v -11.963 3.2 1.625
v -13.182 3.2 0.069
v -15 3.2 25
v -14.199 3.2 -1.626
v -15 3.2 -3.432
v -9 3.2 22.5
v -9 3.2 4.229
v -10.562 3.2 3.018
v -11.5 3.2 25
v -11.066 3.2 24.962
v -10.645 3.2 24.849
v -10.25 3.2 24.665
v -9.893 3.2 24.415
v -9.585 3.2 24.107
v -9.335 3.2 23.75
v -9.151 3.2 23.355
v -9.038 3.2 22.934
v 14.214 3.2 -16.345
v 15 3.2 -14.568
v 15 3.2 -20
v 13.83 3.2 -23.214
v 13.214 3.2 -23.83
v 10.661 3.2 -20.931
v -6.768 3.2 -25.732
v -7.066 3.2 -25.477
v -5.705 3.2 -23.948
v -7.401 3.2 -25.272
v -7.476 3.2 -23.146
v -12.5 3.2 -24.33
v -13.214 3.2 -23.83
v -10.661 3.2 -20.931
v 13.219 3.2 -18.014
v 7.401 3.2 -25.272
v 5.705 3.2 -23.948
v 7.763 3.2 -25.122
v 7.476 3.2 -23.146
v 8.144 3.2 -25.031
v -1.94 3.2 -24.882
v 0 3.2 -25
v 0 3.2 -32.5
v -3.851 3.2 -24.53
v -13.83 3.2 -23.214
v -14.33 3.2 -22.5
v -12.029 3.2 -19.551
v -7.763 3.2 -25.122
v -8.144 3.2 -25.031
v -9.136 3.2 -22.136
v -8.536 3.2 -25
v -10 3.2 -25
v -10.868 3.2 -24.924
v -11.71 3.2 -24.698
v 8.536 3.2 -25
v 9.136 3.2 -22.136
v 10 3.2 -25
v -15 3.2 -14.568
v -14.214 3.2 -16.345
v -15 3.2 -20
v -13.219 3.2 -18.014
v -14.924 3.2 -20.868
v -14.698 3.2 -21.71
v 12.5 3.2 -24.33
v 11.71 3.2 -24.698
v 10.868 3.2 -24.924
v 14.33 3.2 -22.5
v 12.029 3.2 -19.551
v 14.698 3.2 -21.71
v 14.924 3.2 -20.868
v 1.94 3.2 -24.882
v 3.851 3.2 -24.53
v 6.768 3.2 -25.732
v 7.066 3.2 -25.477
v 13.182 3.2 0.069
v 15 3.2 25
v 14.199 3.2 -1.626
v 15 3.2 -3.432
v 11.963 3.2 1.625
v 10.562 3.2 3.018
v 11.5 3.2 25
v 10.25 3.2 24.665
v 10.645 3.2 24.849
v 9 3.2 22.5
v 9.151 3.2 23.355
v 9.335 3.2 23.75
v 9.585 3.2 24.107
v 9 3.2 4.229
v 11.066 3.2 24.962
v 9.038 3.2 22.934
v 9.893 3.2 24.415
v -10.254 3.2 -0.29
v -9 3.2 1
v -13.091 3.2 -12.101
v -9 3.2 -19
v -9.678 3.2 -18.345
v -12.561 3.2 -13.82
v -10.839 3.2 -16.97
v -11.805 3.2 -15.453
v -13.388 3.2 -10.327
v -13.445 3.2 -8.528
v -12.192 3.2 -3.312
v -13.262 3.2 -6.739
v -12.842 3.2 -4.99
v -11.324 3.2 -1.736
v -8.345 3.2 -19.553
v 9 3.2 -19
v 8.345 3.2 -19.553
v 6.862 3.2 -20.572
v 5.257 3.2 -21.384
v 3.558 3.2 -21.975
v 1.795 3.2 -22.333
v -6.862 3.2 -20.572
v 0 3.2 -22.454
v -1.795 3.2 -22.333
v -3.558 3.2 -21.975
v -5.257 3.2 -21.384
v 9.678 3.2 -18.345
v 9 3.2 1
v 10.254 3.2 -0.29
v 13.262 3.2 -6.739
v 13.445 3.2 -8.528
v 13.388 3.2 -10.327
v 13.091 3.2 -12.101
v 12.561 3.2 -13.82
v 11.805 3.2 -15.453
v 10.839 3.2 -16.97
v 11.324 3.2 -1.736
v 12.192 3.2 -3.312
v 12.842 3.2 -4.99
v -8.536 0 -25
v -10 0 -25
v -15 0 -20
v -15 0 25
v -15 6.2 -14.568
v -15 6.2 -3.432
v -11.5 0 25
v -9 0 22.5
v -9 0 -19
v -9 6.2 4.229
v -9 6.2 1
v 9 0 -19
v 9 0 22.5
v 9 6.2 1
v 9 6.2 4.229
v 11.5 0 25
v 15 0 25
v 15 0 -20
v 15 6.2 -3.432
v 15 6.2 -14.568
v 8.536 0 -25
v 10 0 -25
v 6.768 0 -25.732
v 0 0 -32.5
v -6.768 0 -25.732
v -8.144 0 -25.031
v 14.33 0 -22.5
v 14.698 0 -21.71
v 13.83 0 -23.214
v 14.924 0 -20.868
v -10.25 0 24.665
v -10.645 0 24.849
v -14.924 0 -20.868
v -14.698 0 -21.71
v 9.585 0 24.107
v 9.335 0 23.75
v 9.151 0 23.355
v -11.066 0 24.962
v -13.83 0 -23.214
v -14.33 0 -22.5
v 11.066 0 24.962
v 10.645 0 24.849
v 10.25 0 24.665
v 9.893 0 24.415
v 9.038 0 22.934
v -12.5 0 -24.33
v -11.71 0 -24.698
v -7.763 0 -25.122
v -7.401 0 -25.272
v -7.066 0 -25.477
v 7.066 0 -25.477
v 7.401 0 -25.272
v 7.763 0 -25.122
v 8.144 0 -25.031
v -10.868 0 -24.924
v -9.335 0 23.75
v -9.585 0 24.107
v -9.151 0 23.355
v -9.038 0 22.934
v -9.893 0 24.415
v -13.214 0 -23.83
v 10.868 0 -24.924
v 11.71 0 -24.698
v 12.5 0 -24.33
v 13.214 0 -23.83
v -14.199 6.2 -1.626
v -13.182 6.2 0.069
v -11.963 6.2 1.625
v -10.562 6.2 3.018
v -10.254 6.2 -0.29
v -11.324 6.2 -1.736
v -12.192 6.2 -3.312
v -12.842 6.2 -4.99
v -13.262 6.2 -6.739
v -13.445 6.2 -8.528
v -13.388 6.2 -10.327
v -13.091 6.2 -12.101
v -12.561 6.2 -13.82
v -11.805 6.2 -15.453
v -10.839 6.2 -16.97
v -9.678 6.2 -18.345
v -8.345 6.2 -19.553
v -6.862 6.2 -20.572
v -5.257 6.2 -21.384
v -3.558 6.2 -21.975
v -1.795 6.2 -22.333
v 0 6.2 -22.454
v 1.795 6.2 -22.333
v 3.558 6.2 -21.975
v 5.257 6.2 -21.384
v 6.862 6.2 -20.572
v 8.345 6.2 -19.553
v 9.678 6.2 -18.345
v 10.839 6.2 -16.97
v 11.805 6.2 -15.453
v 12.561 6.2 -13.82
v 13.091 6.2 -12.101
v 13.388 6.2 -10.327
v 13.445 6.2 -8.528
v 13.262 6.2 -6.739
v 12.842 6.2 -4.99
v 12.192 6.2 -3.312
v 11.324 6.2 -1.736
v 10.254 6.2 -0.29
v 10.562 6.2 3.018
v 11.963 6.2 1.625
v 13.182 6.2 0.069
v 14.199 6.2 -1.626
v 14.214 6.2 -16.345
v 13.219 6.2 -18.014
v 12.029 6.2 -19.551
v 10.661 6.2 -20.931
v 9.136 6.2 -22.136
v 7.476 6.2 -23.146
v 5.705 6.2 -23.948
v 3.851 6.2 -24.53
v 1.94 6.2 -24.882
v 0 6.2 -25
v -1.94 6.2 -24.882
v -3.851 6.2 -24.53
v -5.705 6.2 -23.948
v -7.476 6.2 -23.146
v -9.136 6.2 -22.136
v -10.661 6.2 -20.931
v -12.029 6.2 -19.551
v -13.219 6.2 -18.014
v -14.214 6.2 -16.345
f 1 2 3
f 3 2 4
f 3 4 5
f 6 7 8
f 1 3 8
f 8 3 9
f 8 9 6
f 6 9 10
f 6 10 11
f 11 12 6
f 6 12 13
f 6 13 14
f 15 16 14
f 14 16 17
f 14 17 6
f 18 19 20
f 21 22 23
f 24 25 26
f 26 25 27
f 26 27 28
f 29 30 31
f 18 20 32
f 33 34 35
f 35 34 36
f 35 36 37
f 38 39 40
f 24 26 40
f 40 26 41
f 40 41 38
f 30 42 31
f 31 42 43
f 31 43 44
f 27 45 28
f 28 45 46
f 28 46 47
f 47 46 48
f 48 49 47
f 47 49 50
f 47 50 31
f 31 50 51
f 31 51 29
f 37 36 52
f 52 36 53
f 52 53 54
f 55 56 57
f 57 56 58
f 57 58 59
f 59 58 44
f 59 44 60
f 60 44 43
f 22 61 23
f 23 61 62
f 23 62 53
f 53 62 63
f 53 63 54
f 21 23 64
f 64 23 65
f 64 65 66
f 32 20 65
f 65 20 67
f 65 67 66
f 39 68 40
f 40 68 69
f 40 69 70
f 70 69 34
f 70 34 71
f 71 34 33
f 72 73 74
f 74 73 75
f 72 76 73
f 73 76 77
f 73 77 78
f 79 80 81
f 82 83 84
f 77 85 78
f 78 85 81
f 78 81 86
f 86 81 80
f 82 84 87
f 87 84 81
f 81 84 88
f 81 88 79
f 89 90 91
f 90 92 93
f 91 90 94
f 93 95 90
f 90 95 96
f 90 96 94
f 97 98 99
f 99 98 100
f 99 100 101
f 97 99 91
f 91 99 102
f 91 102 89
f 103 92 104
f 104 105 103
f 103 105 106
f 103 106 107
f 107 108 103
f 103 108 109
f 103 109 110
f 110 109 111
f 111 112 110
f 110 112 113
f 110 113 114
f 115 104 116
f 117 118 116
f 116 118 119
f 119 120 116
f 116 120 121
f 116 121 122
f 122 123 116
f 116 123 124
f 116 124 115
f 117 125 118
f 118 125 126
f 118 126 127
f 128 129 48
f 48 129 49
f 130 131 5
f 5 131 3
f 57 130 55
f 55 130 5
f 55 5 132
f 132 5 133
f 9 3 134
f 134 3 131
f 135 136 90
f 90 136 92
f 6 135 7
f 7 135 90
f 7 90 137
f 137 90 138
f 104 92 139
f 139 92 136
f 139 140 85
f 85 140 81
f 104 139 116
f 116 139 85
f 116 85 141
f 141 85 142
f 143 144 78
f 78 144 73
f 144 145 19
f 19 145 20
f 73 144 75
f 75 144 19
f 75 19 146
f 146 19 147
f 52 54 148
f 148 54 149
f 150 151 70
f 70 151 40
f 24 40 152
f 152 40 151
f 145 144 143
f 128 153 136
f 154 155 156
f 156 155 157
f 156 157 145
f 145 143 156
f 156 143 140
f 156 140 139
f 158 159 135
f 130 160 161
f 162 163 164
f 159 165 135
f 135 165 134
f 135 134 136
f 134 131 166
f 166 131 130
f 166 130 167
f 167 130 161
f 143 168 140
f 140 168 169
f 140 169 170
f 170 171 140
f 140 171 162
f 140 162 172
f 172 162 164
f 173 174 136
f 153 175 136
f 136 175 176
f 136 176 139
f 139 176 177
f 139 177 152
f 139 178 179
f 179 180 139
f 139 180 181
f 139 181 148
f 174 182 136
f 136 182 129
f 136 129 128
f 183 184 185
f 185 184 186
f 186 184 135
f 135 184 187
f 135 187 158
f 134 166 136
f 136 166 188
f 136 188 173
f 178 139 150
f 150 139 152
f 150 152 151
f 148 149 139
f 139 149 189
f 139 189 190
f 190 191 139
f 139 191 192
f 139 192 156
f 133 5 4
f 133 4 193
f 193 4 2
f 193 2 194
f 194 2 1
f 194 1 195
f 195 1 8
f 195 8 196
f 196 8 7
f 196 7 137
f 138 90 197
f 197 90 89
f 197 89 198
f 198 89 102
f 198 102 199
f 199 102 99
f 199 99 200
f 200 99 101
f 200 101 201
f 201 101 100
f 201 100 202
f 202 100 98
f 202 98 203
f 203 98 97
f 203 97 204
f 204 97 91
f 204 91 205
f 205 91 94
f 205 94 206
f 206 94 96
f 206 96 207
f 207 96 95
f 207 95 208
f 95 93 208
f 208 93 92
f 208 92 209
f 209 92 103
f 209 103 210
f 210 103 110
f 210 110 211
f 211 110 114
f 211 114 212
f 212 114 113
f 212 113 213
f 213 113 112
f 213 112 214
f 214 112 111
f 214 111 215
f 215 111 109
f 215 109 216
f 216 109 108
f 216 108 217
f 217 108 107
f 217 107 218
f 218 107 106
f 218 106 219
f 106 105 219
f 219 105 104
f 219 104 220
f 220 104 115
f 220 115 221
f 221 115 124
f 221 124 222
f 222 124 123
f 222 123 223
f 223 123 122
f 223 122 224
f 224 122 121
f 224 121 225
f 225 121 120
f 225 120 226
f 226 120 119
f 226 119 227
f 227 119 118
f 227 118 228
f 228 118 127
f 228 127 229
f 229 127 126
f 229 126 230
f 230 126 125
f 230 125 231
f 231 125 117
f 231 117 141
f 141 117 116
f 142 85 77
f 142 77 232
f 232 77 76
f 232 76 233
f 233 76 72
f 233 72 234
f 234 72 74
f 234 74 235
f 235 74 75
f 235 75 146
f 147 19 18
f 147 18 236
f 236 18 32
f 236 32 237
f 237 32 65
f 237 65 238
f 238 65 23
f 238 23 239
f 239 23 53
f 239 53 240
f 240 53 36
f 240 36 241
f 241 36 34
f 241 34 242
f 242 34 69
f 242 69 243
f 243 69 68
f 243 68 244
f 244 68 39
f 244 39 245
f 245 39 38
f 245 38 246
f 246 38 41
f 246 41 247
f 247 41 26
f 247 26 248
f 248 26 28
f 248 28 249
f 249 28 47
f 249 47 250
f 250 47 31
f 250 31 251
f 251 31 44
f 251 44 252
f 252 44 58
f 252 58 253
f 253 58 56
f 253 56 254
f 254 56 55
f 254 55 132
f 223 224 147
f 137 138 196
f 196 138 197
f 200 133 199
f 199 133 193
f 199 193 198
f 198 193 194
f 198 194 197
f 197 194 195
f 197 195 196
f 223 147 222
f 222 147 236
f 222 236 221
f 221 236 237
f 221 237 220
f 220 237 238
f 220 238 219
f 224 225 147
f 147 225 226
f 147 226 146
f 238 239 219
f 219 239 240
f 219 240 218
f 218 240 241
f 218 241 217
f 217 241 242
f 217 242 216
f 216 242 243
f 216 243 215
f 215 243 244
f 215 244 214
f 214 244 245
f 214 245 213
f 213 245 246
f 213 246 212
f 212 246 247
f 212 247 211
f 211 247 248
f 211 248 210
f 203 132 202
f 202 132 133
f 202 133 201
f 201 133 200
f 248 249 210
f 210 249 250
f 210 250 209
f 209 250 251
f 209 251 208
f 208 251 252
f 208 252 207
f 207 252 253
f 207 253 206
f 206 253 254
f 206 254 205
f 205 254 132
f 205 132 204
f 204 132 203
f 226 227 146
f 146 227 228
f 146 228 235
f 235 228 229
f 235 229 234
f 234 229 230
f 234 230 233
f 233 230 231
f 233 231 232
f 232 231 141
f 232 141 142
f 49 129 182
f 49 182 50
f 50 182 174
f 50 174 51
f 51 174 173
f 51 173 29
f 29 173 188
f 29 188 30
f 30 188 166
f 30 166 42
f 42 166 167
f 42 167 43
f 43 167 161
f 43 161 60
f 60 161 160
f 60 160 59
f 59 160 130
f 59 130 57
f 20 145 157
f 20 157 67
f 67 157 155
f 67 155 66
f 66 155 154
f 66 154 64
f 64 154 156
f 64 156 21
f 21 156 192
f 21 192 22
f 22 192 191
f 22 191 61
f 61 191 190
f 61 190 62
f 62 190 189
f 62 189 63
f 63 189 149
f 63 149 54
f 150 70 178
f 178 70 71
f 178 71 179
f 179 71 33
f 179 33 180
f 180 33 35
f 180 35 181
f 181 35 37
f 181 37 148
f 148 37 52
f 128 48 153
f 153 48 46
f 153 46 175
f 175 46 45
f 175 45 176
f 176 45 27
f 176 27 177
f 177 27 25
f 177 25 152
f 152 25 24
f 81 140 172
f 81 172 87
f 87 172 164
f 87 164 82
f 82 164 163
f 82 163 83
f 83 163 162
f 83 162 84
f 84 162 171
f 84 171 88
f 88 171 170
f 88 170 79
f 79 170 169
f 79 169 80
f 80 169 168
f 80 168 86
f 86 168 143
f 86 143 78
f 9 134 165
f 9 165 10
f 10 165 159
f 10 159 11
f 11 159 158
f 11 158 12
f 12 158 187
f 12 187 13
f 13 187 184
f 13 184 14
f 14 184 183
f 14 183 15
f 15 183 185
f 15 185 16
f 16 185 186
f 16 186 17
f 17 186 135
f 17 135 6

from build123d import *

# Parameters (mm, degrees)
BOSS_EXTRUDE1_DEPTH = 3.2
BOSS_EXTRUDE2_DEPTH = 3
FILLET1_R           = 5
FILLET2_R           = 2.5


with BuildPart() as part:
    # Sketch1 → Boss-Extrude1 (new body)
    with BuildSketch(Plane(origin=(0, 0, 0), x_dir=(1, 0, 0), z_dir=(0, 1, 0))):
        Polygon((-15, -25), (-9, -25), (-9, 19), (9, 19), (9, -25), (15, -25), (15, 25), (7.5, 25), (0, 32.5), (-7.5, 25), (-15, 25), align=None)
    extrude(amount=BOSS_EXTRUDE1_DEPTH)

    # Sketch2 → Boss-Extrude2 (add)
    with BuildSketch(Plane(origin=(0, 3.2, 0), x_dir=(1, 0, 0), z_dir=(0, 1, 0))):
        with BuildLine():
            Line((-9, -4.228756555), (-9, -1))
            ThreePointArc((-9, -1), (0, 22.453624047), (9, -1))
            Line((9, -1), (9, -4.228756555))
            ThreePointArc((9, -4.228756555), (12.596535252, -0.865459931), (15, 3.432235637))
            Line((15, 3.432235637), (15, 14.567764363))
            ThreePointArc((15, 14.567764363), (0, 25), (-15, 14.567764363))
            Line((-15, 14.567764363), (-15, 3.432235637))
            ThreePointArc((-15, 3.432235637), (-12.596535252, -0.865459931), (-9, -4.228756555))
        make_face()
    extrude(amount=BOSS_EXTRUDE2_DEPTH)

    # Fillet1
    fillet1_edges = [part.edges().sort_by_distance(p)[0] for p in [
        (15, 1.6, -25),
        (-15, 1.6, -25),
    ]]
    fillet(fillet1_edges, radius=FILLET1_R)

    # Fillet2
    fillet2_edges = [part.edges().sort_by_distance(p)[0] for p in [
        (-7.5, 1.6, -25),
        (7.5, 1.6, -25),
        (9, 1.6, 25),
        (-9, 1.6, 25),
    ]]
    fillet(fillet2_edges, radius=FILLET2_R)


solid = part.part
